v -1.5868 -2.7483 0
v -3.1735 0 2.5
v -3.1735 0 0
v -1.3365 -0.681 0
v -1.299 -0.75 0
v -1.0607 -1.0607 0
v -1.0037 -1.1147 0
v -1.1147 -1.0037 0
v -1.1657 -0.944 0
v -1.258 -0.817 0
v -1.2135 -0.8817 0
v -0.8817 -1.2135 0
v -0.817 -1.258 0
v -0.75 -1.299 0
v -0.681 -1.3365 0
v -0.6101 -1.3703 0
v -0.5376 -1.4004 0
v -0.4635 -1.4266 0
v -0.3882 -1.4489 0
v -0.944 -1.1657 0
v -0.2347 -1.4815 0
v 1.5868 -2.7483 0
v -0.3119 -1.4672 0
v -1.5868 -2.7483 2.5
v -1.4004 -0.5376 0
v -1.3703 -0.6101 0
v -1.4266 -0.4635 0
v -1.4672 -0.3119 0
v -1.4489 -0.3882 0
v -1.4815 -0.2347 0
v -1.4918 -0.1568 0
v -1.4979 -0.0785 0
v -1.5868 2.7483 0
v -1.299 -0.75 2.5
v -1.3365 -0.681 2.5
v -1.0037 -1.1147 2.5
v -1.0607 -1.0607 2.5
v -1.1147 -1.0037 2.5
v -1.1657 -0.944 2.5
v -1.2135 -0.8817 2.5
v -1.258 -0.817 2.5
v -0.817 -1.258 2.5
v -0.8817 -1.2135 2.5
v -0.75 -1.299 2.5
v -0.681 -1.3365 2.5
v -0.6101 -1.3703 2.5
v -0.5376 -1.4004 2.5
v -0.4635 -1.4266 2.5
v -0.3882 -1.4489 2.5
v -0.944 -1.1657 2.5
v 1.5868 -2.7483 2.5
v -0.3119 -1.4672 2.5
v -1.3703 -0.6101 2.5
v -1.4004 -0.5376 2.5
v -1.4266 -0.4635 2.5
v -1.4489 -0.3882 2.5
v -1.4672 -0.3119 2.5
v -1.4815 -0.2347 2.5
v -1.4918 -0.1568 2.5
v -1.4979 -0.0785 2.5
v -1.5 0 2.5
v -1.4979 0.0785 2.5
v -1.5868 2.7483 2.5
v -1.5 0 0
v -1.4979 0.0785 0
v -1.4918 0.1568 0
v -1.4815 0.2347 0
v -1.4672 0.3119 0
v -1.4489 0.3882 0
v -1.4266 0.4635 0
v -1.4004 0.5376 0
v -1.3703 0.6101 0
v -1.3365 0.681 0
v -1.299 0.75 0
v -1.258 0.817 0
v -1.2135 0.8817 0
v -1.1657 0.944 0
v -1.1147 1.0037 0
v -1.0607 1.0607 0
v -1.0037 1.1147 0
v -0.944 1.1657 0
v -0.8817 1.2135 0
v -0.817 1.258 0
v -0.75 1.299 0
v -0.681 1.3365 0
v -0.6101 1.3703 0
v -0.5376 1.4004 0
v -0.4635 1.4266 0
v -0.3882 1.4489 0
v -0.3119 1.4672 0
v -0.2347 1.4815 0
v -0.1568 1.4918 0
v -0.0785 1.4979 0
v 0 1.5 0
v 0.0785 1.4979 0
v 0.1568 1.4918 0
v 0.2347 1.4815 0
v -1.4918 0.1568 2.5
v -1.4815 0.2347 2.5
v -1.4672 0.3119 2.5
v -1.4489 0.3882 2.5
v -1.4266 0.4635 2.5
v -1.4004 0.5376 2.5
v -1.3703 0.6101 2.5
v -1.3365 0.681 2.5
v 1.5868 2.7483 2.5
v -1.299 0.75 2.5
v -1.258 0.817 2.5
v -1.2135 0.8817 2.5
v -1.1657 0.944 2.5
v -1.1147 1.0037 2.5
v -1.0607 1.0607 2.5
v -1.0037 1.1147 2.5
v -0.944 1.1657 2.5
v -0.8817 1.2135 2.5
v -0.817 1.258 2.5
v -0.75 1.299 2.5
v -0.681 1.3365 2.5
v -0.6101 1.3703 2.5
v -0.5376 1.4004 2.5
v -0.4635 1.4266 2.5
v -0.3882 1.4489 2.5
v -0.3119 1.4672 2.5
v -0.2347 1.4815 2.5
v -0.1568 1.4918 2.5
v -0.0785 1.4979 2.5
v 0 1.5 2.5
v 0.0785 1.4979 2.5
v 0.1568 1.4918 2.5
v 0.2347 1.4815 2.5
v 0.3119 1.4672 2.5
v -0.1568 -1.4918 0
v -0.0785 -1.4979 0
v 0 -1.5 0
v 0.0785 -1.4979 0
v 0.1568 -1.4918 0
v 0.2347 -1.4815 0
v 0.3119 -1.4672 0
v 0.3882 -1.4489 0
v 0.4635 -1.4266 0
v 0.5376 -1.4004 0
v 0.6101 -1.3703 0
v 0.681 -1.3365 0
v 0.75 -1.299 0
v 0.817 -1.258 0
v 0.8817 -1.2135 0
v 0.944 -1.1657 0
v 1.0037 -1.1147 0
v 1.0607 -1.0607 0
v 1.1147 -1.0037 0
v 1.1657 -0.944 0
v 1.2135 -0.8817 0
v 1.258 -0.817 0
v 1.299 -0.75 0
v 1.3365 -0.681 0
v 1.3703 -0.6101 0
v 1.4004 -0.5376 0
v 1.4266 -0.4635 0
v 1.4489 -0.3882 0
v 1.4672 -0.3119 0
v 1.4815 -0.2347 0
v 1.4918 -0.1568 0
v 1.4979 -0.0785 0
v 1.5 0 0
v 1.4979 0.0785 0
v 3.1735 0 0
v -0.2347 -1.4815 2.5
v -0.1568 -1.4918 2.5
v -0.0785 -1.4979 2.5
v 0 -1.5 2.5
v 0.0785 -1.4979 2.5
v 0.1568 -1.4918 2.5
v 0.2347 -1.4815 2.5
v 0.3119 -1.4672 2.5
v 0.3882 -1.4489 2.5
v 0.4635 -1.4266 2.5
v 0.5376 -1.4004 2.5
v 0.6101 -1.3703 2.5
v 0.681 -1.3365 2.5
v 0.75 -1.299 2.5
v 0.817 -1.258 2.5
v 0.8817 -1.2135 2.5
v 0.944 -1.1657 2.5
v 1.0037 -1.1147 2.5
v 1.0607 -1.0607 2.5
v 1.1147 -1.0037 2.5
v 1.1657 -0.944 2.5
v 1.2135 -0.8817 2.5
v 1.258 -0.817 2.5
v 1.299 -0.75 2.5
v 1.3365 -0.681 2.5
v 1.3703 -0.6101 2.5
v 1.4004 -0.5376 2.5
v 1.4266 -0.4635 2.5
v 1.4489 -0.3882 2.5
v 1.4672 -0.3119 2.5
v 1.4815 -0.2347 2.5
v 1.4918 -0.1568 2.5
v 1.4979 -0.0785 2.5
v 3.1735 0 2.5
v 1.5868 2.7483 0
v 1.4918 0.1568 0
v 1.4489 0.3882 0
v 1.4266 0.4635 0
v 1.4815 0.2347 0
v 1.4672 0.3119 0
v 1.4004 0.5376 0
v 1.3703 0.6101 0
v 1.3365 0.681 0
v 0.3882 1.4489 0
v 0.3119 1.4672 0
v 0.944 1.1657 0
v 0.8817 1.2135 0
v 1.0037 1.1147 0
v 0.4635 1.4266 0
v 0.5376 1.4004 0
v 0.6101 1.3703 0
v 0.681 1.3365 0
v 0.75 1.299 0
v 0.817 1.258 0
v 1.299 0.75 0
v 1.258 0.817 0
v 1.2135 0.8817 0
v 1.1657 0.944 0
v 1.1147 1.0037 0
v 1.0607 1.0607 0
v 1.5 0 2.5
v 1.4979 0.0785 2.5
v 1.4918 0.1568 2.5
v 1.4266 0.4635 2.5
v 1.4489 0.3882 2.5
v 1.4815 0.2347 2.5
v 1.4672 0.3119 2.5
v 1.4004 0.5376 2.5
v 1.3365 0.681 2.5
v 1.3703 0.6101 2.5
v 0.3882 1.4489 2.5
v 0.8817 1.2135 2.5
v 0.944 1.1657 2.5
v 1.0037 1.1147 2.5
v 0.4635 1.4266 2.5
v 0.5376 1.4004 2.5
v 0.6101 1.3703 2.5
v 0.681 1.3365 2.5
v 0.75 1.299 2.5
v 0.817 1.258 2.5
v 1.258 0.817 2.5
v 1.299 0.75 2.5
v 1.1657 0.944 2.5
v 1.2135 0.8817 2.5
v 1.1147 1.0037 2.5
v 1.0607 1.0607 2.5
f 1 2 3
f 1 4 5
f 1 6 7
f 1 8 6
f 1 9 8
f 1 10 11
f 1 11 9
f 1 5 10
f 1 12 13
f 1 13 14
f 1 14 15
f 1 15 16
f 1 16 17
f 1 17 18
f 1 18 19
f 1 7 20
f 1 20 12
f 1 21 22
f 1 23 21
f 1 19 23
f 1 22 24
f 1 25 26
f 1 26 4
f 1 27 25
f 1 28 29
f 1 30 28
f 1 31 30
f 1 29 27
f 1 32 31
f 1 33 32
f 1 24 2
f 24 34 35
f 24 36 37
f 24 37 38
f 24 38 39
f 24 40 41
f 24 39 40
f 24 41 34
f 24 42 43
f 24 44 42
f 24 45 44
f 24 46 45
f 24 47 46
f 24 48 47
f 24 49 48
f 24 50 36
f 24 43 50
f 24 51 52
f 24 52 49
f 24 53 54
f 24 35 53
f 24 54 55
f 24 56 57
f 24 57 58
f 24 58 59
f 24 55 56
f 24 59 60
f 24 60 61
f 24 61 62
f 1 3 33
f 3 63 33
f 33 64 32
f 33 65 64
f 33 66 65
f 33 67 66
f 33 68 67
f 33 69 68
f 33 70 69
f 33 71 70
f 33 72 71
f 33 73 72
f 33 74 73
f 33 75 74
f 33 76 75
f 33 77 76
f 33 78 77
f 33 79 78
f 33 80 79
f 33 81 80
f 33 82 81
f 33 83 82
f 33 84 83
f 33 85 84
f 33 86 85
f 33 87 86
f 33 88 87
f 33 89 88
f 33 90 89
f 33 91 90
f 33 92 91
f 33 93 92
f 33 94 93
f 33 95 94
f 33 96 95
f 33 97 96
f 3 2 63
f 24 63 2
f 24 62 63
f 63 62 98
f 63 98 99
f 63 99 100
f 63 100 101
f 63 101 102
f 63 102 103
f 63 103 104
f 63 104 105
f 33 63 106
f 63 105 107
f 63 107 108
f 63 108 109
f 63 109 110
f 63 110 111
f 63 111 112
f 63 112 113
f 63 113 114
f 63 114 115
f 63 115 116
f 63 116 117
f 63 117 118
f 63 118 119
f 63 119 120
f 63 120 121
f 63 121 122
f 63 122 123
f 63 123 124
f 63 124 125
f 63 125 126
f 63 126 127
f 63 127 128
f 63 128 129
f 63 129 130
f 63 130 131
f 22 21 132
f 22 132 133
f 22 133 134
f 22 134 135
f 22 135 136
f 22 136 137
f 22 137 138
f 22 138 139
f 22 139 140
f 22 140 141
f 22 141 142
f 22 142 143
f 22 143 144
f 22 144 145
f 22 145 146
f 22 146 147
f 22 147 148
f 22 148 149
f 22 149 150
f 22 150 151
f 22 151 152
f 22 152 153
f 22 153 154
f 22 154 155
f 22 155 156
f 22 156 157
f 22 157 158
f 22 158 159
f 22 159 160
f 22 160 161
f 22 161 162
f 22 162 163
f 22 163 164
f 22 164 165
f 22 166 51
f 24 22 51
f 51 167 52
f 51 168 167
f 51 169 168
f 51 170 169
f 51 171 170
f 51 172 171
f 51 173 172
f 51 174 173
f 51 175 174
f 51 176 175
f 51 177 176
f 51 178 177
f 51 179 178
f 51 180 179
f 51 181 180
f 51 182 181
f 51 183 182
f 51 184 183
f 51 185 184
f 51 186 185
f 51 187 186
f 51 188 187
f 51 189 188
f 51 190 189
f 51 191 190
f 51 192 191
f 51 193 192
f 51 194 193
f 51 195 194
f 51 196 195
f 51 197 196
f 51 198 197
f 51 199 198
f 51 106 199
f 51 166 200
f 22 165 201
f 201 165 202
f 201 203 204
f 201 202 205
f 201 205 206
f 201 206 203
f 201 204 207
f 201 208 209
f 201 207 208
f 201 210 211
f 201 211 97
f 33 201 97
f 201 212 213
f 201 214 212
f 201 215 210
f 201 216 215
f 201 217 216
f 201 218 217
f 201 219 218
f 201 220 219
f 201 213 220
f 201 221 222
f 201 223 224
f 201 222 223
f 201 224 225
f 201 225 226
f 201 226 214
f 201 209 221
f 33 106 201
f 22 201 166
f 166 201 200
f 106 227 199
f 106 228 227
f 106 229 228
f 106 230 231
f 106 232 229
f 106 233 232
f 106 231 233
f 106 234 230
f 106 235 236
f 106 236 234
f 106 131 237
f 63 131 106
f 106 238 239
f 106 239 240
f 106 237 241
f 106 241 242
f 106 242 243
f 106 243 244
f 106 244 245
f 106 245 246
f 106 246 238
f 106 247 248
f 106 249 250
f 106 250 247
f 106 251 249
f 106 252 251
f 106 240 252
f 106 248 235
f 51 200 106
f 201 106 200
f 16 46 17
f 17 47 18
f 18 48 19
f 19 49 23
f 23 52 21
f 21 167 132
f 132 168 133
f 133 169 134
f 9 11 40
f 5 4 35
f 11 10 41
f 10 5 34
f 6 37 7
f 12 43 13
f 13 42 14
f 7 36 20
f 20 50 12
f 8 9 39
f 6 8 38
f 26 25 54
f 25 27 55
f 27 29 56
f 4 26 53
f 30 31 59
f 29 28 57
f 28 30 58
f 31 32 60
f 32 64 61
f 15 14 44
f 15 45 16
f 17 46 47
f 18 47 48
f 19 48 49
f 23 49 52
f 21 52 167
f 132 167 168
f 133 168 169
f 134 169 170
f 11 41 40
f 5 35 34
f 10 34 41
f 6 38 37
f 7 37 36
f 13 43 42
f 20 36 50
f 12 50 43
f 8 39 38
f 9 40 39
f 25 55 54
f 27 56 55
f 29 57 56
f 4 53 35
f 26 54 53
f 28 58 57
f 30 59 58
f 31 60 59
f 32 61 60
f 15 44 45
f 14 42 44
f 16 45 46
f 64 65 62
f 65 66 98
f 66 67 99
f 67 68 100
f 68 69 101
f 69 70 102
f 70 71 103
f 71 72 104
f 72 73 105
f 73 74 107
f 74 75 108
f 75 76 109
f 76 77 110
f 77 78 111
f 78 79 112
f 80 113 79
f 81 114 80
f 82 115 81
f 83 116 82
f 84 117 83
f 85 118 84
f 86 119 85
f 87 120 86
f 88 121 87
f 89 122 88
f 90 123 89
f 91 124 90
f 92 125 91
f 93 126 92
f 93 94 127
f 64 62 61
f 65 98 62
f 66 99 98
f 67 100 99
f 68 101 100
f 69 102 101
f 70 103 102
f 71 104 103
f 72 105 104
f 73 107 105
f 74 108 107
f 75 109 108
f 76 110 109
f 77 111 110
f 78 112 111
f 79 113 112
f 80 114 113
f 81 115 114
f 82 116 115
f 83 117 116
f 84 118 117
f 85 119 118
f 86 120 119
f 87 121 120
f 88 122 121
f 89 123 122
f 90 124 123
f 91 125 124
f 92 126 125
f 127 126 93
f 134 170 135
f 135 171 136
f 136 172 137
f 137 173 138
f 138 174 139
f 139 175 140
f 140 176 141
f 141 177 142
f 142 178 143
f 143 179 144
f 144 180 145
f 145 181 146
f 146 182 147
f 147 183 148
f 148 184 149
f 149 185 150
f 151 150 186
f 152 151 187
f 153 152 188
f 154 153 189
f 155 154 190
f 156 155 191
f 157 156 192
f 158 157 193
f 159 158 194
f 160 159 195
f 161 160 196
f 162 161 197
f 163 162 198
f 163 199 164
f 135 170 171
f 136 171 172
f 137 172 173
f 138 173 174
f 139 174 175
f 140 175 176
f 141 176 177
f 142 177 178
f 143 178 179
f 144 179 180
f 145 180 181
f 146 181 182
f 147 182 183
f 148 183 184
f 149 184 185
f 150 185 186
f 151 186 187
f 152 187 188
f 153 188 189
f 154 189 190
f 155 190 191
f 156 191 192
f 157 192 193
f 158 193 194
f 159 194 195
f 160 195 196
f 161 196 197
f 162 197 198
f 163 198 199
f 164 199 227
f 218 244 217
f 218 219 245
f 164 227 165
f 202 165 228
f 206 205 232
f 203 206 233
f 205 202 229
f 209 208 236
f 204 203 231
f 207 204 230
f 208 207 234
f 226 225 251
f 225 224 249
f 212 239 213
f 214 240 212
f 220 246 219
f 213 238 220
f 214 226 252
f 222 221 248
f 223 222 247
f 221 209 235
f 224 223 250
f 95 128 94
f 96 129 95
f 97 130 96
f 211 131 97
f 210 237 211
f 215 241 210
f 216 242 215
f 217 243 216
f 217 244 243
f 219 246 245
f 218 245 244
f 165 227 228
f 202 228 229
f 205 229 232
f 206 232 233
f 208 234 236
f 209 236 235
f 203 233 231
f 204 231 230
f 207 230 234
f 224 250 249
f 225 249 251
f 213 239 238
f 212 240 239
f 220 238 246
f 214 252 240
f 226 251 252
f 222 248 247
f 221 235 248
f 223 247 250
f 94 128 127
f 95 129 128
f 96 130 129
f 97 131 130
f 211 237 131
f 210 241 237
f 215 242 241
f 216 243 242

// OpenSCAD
// file: C:/gh/oomlout_oobb_part_motor_gearbox_wave_drive_version_5/parts/oobb_part_motor_gearbox_wave_drive_version_5_12_to_1_reduction/compact_helpers.scad
// Reusable native geometry helpers.
function polar(r,a)=[r*cos(a),r*sin(a)];
function rotate_point(p,a)=[p[0]*cos(a)-p[1]*sin(a),p[0]*sin(a)+p[1]*cos(a)];
function profile_point(t)=let(
    s=sqrt(pow(pitch_radius,2)-pow(eccentricity*sin(cavity_count*t),2)),
    r=eccentricity*cos(cavity_count*t)+s,
    xi=atan2(eccentricity*cavity_count*sin(cavity_count*t),s),
    rr=roller_radius+profile_clearance)
    [r*cos(t)+rr*cos(t+xi),r*sin(t)+rr*sin(t+xi)];
function profile_points(upper=false)=[for(i=[0:cavity_count*profile_samples_per_cavity-1])
    rotate_point(profile_point(360*i/(cavity_count*profile_samples_per_cavity)),0)];
function roller_position(i,a,upper=false)=let(
    t=-a/roller_count+360*i/roller_count,
    rel=t-a-(upper?180:0),
    r=eccentricity*cos(rel)+sqrt(pow(pitch_radius,2)-pow(eccentricity*sin(rel),2))) polar(r,t);
module tube(ro,ri,h) { difference() { cylinder(r=ro,h=h); translate([0,0,-eps]) cylinder(r=ri,h=h+2*eps); } }
module screw_hole(size,h) { scale([1,1,h]) { if(size=="m2") oobb_hole_m2(); if(size=="m3") oobb_hole_m3(); if(size=="m6") oobb_hole_m6(); } }
module socket_recess(size,depth) {
    // OOBB socket head starts at the under-head plane and extends outward.
    scale([1,1,depth/(size=="m3"?3.2:2.2)]) {
        if(size=="m3") oobb_socket_m3(); else oobb_socket_m2();
    }
}
module at_mounts(points) { for(p=points) translate([p[0],p[1],0]) children(); }
module shaft_cut(h,fit=shaft_fit_clearance) {
    linear_extrude(h) intersection() {
        circle(r=input_shaft_diameter/2+fit);
        translate([-10,-10]) square([10+input_shaft_diameter/2-input_shaft_flat_depth+fit,20]);
    }
}
module rounded_rectangle_plate(size=[119,119,3],radius=1.5) {
    hull() for(x=[-1,1],y=[-1,1]) translate([x*(size[0]/2-radius),y*(size[1]/2-radius),0]) cylinder(r=radius,h=size[2]);
}
module grid_cuts(h) {
    // Actual OOBB grid centres: six units are centred on half-pitch offsets.
    for(i=[0:base_width-1],j=[0:base_height-1])
        let(x=(i-(base_width-1)/2)*oobb_grid_pitch,y=(j-(base_height-1)/2)*oobb_grid_pitch)
        if(sqrt(x*x+y*y)>housing_radius+3.5)
            translate([x,y,-eps]) screw_hole("m6",h+2*eps);
}
module wave_generator() {
    render(convexity=20) difference() {
        tube(wave_radius,12.6,wave_height);
        translate([0,0,wave_seat_z]) cylinder(r=13.5+bearing_seat_clearance,h=wave_height);
        translate([0,0,wave_height-wave_cap_depth]) cylinder(r=22.15,h=wave_cap_depth+eps);
        at_mounts(wave_mounts) {
            translate([0,0,-eps]) screw_hole("m3",wave_height+2*eps);
            translate([0,0,wave_nut_z]) scale([1,1,(wave_height-wave_cap_depth-wave_nut_z+eps)/2.7]) oobb_nut_m3();
        }
    }
}
module wave_cap() {
    render(convexity=20) difference() {
        tube(22,12.6,wave_cap_depth);
        at_mounts(wave_mounts) {
            translate([0,0,-eps]) screw_hole("m3",wave_cap_depth+2*eps);
            translate([0,0,wave_cap_depth-wave_head_recess]) socket_recess("m3",wave_head_recess+eps);
        }
    }
}
// file: C:/gh/oomlout_oobb_part_motor_gearbox_wave_drive_version_5/parts/oobb_part_motor_gearbox_wave_drive_version_5_12_to_1_reduction/oobb_hardware.scad
module oobb_rounded_rectangle_edges(size, radius, radius_top, radius_bottom) {
      rt=radius_top; rb=radius_bottom; depth=size[2]; n=16;
      lower=rb==0 ? [[radius,0]] :
        [for(i=[0:n]) let(a=-90+90*i/n) [radius-rb+rb*cos(a),rb+rb*sin(a)]];
      upper=rt==0 ? [[radius,depth]] :
        [for(i=[0:n]) let(a=90*i/n) [radius-rt+rt*cos(a),depth-rt+rt*sin(a)]];
      hull() for(x=[-size[0]/2+radius,size[0]/2-radius])
        for(y=[-size[1]/2+radius,size[1]/2-radius])
          translate([x,y,0]) rotate_extrude()
            polygon(concat([[0,0]],lower,upper,[[0,depth]]));
    }
// Generated from installed OOBB v5. All primitives use overhang=True.

module oobb_motor_plate_body() {


difference() {
	union() {
		translate(v = [0, 0, 0]) {
			rotate(a = [0, 0, 0]) {
				difference() {
					union() {
						oobb_rounded_rectangle_edges(radius = 1.5, radius_bottom = 1.5, radius_top = 1.5, size = [89.0, 89.0, 4.0]);
					}
					union();
				}
			}
		}
	}
	union();
}

}

module oobb_hole_m2() {


difference() {
	union() {
		cylinder(h = 1, r = 1.35);
	}
	union();
}

}

module oobb_hole_m3() {


difference() {
	union() {
		cylinder(h = 1, r = 1.8);
	}
	union();
}

}

module oobb_hole_m6() {


difference() {
	union() {
		cylinder(h = 1, r = 3.25);
	}
	union();
}

}

module oobb_nut_m2() {


difference() {
	union() {
		translate(v = [0, 0, 0]) {
			rotate(a = [0, 0, 0]) {
				difference() {
					union() {
						linear_extrude(height = 2.2) {
							polygon(points = [[2.4234, 0.0], [1.2117000000000002, 2.0987259635312085], [-1.2116999999999996, 2.0987259635312085], [-2.4234, 2.967809053053696e-16], [-1.211700000000001, -2.098725963531208], [1.2116999999999984, -2.0987259635312094]]);
						}
						translate(v = [-1.25, -2.75, -0.3]) {
							cube(size = [2.5, 5.5, 0.3]);
						}
						translate(v = [-1.25, -1.25, -0.6]) {
							cube(size = [2.5, 2.5, 0.3]);
						}
						translate(v = [-1.25, -2.75, 2.2]) {
							cube(size = [2.5, 5.5, 0.3]);
						}
						translate(v = [-1.25, -1.25, 2.5]) {
							cube(size = [2.5, 2.5, 0.3]);
						}
					}
					union();
				}
			}
		}
	}
	union();
}

}

module oobb_socket_m2() {


difference() {
	union() {
		translate(v = [0, 0, 0]) {
			rotate(a = [0, 0, 0]) {
				difference() {
					union() {
						cylinder(h = 2.2, r = 2.1);
						translate(v = [-1.25, -2.75, -0.3]) {
							cube(size = [2.5, 5.5, 0.3]);
						}
						translate(v = [-1.25, -1.25, -0.6]) {
							cube(size = [2.5, 2.5, 0.3]);
						}
					}
					union();
				}
			}
		}
	}
	union();
}

}

module oobb_nut_m3() {


difference() {
	union() {
		translate(v = [0, 0, 0]) {
			rotate(a = [0, 0, 0]) {
				difference() {
					union() {
						linear_extrude(height = 2.7) {
							polygon(points = [[3.4619999999999997, 0.0], [1.7310000000000003, 2.9981799479017264], [-1.7309999999999992, 2.9981799479017264], [-3.4619999999999997, 4.2397272186481365e-16], [-1.7310000000000014, -2.998179947901726], [1.7309999999999977, -2.9981799479017277]]);
						}
						translate(v = [-1.75, -3.25, -0.3]) {
							cube(size = [3.5, 6.5, 0.3]);
						}
						translate(v = [-1.75, -1.75, -0.6]) {
							cube(size = [3.5, 3.5, 0.3]);
						}
						translate(v = [-1.75, -3.25, 2.7]) {
							cube(size = [3.5, 6.5, 0.3]);
						}
						translate(v = [-1.75, -1.75, 3.0]) {
							cube(size = [3.5, 3.5, 0.3]);
						}
					}
					union();
				}
			}
		}
	}
	union();
}

}

module oobb_socket_m3() {


difference() {
	union() {
		translate(v = [0, 0, 0]) {
			rotate(a = [0, 0, 0]) {
				difference() {
					union() {
						cylinder(h = 3.2, r = 3.0);
						translate(v = [-1.75, -3.25, -0.3]) {
							cube(size = [3.5, 6.5, 0.3]);
						}
						translate(v = [-1.75, -1.75, -0.6]) {
							cube(size = [3.5, 3.5, 0.3]);
						}
					}
					union();
				}
			}
		}
	}
	union();
}

}

module oobb_nut_m6() {


difference() {
	union() {
		translate(v = [0, 0, 0]) {
			rotate(a = [0, 0, 0]) {
				difference() {
					union() {
						linear_extrude(height = 5.2) {
							polygon(points = [[5.914249999999999, 0.0], [2.957125, 5.1218907443321156], [-2.9571249999999982, 5.1218907443321156], [-5.914249999999999, 7.242867331857232e-16], [-2.9571250000000022, -5.121890744332115], [2.9571249999999956, -5.121890744332118]]);
						}
						translate(v = [-2.875, -5.0, -0.3]) {
							cube(size = [5.75, 10, 0.3]);
						}
						translate(v = [-2.875, -2.875, -0.6]) {
							cube(size = [5.75, 5.75, 0.3]);
						}
						translate(v = [-2.875, -5.0, 5.2]) {
							cube(size = [5.75, 10, 0.3]);
						}
						translate(v = [-2.875, -2.875, 5.5]) {
							cube(size = [5.75, 5.75, 0.3]);
						}
					}
					union();
				}
			}
		}
	}
	union();
}

}
// file: C:/gh/oomlout_oobb_part_motor_gearbox_wave_drive_version_5/parts/oobb_part_motor_gearbox_wave_drive_version_5_12_to_1_reduction/parameters.scad
// Generated by working_scad.py. Edit the Python recipe to persist changes.
style = "version_5";
reduction = 12;
bearing_output = "6810";
bearing_wave = "6704";
roller_diameter = 7.0;
roller_bore_diameter = 3.2;
roller_length = 12.0;
roller_material = "nylon";
roller_bank_count = 1;
motor_plate_depth = 4.0;
motor_body_depth = 40.0;
motor_shaft_length = 24.0;
motor_hole_pitch = 31.0;
motor_thread_depth = 6.0;
motor_pilot_diameter = 22.0;
motor_pilot_height = 2.0;
output_holder_wall = 7.0;
max_screw_length = 35.0;
eccentricity = 0.75;
wave_radius = 23.25;
profile_clearance = 0.15;
roller_slot_clearance = 0.3;
roller_end_clearance = 0.3;
cage_wall = 4.0;
cage_plate_depth = 3.0;
bearing_seat_clearance = 0.1;
journal_clearance = 0.05;
bearing_axial_clearance = 0.2;
output_plate_diameter = 65.0;
output_plate_depth = 6.0;
output_grid_pitch = 15.0;
output_face_clearance = 0.3;
output_socket_recess = 4.0;
output_screw_length = 16;
output_nut_depth = 5.2;
output_nut_height = 5.0;
motor_shaft_end_clearance = 0.5;
base_width = 6;
base_height = 6;
oobb_grid_pitch = 15.0;
oobb_size_allowance = 1.0;
base_edge_radius = 1.5;
housing_flange_corner_radius = 1.5;
housing_screw_pitch_radius = 35.5;
housing_screw_count = 6;
input_shaft_diameter = 5.0;
input_shaft_flat_depth = 0.5;
shaft_fit_clearance = 0.1;
cage_screw_count = 4;
profile_samples_per_cavity = 100;
circle_fragments = 120;
overhang = true;
run_scad = true;
run_solidcraft = false;
generate_stl = true;
generate_previews = true;
generate_renders = true;
validate_geometry = true;
package_outputs = true;
render_threads = 8;
variant = "default";
// main file
include <C:/gh/oomlout_oobb_part_motor_gearbox_wave_drive_version_5/parts/oobb_part_motor_gearbox_wave_drive_version_5_12_to_1_reduction/parameters.scad>
include <C:/gh/oomlout_oobb_part_motor_gearbox_wave_drive_version_5/parts/oobb_part_motor_gearbox_wave_drive_version_5_12_to_1_reduction/oobb_hardware.scad>
include <C:/gh/oomlout_oobb_part_motor_gearbox_wave_drive_version_5/parts/oobb_part_motor_gearbox_wave_drive_version_5_12_to_1_reduction/geometry.scad>
difference() { intersection() { 

difference() {
	union() {
		translate(v = [0, 0, 0]) {
			rotate(a = [0, 0, 0]) {
				difference() {
					union() {
						linear_extrude(height = 2.5) {
							polygon(points = [[3.1734999999999998, 0.0], [1.5867500000000003, 2.7483316189099156], [-1.5867499999999992, 2.748331618909916], [-3.1734999999999998, 3.886416617094125e-16], [-1.5867500000000012, -2.748331618909915], [1.5867499999999977, -2.748331618909917]]);
						}
					}
					union();
				}
			}
		}
	}
	union();
}
 translate([-5,-5,0]) cube([10,10,2.5]); } translate([0,0,-0.01]) cylinder(r=1.5,h=2.52); }
